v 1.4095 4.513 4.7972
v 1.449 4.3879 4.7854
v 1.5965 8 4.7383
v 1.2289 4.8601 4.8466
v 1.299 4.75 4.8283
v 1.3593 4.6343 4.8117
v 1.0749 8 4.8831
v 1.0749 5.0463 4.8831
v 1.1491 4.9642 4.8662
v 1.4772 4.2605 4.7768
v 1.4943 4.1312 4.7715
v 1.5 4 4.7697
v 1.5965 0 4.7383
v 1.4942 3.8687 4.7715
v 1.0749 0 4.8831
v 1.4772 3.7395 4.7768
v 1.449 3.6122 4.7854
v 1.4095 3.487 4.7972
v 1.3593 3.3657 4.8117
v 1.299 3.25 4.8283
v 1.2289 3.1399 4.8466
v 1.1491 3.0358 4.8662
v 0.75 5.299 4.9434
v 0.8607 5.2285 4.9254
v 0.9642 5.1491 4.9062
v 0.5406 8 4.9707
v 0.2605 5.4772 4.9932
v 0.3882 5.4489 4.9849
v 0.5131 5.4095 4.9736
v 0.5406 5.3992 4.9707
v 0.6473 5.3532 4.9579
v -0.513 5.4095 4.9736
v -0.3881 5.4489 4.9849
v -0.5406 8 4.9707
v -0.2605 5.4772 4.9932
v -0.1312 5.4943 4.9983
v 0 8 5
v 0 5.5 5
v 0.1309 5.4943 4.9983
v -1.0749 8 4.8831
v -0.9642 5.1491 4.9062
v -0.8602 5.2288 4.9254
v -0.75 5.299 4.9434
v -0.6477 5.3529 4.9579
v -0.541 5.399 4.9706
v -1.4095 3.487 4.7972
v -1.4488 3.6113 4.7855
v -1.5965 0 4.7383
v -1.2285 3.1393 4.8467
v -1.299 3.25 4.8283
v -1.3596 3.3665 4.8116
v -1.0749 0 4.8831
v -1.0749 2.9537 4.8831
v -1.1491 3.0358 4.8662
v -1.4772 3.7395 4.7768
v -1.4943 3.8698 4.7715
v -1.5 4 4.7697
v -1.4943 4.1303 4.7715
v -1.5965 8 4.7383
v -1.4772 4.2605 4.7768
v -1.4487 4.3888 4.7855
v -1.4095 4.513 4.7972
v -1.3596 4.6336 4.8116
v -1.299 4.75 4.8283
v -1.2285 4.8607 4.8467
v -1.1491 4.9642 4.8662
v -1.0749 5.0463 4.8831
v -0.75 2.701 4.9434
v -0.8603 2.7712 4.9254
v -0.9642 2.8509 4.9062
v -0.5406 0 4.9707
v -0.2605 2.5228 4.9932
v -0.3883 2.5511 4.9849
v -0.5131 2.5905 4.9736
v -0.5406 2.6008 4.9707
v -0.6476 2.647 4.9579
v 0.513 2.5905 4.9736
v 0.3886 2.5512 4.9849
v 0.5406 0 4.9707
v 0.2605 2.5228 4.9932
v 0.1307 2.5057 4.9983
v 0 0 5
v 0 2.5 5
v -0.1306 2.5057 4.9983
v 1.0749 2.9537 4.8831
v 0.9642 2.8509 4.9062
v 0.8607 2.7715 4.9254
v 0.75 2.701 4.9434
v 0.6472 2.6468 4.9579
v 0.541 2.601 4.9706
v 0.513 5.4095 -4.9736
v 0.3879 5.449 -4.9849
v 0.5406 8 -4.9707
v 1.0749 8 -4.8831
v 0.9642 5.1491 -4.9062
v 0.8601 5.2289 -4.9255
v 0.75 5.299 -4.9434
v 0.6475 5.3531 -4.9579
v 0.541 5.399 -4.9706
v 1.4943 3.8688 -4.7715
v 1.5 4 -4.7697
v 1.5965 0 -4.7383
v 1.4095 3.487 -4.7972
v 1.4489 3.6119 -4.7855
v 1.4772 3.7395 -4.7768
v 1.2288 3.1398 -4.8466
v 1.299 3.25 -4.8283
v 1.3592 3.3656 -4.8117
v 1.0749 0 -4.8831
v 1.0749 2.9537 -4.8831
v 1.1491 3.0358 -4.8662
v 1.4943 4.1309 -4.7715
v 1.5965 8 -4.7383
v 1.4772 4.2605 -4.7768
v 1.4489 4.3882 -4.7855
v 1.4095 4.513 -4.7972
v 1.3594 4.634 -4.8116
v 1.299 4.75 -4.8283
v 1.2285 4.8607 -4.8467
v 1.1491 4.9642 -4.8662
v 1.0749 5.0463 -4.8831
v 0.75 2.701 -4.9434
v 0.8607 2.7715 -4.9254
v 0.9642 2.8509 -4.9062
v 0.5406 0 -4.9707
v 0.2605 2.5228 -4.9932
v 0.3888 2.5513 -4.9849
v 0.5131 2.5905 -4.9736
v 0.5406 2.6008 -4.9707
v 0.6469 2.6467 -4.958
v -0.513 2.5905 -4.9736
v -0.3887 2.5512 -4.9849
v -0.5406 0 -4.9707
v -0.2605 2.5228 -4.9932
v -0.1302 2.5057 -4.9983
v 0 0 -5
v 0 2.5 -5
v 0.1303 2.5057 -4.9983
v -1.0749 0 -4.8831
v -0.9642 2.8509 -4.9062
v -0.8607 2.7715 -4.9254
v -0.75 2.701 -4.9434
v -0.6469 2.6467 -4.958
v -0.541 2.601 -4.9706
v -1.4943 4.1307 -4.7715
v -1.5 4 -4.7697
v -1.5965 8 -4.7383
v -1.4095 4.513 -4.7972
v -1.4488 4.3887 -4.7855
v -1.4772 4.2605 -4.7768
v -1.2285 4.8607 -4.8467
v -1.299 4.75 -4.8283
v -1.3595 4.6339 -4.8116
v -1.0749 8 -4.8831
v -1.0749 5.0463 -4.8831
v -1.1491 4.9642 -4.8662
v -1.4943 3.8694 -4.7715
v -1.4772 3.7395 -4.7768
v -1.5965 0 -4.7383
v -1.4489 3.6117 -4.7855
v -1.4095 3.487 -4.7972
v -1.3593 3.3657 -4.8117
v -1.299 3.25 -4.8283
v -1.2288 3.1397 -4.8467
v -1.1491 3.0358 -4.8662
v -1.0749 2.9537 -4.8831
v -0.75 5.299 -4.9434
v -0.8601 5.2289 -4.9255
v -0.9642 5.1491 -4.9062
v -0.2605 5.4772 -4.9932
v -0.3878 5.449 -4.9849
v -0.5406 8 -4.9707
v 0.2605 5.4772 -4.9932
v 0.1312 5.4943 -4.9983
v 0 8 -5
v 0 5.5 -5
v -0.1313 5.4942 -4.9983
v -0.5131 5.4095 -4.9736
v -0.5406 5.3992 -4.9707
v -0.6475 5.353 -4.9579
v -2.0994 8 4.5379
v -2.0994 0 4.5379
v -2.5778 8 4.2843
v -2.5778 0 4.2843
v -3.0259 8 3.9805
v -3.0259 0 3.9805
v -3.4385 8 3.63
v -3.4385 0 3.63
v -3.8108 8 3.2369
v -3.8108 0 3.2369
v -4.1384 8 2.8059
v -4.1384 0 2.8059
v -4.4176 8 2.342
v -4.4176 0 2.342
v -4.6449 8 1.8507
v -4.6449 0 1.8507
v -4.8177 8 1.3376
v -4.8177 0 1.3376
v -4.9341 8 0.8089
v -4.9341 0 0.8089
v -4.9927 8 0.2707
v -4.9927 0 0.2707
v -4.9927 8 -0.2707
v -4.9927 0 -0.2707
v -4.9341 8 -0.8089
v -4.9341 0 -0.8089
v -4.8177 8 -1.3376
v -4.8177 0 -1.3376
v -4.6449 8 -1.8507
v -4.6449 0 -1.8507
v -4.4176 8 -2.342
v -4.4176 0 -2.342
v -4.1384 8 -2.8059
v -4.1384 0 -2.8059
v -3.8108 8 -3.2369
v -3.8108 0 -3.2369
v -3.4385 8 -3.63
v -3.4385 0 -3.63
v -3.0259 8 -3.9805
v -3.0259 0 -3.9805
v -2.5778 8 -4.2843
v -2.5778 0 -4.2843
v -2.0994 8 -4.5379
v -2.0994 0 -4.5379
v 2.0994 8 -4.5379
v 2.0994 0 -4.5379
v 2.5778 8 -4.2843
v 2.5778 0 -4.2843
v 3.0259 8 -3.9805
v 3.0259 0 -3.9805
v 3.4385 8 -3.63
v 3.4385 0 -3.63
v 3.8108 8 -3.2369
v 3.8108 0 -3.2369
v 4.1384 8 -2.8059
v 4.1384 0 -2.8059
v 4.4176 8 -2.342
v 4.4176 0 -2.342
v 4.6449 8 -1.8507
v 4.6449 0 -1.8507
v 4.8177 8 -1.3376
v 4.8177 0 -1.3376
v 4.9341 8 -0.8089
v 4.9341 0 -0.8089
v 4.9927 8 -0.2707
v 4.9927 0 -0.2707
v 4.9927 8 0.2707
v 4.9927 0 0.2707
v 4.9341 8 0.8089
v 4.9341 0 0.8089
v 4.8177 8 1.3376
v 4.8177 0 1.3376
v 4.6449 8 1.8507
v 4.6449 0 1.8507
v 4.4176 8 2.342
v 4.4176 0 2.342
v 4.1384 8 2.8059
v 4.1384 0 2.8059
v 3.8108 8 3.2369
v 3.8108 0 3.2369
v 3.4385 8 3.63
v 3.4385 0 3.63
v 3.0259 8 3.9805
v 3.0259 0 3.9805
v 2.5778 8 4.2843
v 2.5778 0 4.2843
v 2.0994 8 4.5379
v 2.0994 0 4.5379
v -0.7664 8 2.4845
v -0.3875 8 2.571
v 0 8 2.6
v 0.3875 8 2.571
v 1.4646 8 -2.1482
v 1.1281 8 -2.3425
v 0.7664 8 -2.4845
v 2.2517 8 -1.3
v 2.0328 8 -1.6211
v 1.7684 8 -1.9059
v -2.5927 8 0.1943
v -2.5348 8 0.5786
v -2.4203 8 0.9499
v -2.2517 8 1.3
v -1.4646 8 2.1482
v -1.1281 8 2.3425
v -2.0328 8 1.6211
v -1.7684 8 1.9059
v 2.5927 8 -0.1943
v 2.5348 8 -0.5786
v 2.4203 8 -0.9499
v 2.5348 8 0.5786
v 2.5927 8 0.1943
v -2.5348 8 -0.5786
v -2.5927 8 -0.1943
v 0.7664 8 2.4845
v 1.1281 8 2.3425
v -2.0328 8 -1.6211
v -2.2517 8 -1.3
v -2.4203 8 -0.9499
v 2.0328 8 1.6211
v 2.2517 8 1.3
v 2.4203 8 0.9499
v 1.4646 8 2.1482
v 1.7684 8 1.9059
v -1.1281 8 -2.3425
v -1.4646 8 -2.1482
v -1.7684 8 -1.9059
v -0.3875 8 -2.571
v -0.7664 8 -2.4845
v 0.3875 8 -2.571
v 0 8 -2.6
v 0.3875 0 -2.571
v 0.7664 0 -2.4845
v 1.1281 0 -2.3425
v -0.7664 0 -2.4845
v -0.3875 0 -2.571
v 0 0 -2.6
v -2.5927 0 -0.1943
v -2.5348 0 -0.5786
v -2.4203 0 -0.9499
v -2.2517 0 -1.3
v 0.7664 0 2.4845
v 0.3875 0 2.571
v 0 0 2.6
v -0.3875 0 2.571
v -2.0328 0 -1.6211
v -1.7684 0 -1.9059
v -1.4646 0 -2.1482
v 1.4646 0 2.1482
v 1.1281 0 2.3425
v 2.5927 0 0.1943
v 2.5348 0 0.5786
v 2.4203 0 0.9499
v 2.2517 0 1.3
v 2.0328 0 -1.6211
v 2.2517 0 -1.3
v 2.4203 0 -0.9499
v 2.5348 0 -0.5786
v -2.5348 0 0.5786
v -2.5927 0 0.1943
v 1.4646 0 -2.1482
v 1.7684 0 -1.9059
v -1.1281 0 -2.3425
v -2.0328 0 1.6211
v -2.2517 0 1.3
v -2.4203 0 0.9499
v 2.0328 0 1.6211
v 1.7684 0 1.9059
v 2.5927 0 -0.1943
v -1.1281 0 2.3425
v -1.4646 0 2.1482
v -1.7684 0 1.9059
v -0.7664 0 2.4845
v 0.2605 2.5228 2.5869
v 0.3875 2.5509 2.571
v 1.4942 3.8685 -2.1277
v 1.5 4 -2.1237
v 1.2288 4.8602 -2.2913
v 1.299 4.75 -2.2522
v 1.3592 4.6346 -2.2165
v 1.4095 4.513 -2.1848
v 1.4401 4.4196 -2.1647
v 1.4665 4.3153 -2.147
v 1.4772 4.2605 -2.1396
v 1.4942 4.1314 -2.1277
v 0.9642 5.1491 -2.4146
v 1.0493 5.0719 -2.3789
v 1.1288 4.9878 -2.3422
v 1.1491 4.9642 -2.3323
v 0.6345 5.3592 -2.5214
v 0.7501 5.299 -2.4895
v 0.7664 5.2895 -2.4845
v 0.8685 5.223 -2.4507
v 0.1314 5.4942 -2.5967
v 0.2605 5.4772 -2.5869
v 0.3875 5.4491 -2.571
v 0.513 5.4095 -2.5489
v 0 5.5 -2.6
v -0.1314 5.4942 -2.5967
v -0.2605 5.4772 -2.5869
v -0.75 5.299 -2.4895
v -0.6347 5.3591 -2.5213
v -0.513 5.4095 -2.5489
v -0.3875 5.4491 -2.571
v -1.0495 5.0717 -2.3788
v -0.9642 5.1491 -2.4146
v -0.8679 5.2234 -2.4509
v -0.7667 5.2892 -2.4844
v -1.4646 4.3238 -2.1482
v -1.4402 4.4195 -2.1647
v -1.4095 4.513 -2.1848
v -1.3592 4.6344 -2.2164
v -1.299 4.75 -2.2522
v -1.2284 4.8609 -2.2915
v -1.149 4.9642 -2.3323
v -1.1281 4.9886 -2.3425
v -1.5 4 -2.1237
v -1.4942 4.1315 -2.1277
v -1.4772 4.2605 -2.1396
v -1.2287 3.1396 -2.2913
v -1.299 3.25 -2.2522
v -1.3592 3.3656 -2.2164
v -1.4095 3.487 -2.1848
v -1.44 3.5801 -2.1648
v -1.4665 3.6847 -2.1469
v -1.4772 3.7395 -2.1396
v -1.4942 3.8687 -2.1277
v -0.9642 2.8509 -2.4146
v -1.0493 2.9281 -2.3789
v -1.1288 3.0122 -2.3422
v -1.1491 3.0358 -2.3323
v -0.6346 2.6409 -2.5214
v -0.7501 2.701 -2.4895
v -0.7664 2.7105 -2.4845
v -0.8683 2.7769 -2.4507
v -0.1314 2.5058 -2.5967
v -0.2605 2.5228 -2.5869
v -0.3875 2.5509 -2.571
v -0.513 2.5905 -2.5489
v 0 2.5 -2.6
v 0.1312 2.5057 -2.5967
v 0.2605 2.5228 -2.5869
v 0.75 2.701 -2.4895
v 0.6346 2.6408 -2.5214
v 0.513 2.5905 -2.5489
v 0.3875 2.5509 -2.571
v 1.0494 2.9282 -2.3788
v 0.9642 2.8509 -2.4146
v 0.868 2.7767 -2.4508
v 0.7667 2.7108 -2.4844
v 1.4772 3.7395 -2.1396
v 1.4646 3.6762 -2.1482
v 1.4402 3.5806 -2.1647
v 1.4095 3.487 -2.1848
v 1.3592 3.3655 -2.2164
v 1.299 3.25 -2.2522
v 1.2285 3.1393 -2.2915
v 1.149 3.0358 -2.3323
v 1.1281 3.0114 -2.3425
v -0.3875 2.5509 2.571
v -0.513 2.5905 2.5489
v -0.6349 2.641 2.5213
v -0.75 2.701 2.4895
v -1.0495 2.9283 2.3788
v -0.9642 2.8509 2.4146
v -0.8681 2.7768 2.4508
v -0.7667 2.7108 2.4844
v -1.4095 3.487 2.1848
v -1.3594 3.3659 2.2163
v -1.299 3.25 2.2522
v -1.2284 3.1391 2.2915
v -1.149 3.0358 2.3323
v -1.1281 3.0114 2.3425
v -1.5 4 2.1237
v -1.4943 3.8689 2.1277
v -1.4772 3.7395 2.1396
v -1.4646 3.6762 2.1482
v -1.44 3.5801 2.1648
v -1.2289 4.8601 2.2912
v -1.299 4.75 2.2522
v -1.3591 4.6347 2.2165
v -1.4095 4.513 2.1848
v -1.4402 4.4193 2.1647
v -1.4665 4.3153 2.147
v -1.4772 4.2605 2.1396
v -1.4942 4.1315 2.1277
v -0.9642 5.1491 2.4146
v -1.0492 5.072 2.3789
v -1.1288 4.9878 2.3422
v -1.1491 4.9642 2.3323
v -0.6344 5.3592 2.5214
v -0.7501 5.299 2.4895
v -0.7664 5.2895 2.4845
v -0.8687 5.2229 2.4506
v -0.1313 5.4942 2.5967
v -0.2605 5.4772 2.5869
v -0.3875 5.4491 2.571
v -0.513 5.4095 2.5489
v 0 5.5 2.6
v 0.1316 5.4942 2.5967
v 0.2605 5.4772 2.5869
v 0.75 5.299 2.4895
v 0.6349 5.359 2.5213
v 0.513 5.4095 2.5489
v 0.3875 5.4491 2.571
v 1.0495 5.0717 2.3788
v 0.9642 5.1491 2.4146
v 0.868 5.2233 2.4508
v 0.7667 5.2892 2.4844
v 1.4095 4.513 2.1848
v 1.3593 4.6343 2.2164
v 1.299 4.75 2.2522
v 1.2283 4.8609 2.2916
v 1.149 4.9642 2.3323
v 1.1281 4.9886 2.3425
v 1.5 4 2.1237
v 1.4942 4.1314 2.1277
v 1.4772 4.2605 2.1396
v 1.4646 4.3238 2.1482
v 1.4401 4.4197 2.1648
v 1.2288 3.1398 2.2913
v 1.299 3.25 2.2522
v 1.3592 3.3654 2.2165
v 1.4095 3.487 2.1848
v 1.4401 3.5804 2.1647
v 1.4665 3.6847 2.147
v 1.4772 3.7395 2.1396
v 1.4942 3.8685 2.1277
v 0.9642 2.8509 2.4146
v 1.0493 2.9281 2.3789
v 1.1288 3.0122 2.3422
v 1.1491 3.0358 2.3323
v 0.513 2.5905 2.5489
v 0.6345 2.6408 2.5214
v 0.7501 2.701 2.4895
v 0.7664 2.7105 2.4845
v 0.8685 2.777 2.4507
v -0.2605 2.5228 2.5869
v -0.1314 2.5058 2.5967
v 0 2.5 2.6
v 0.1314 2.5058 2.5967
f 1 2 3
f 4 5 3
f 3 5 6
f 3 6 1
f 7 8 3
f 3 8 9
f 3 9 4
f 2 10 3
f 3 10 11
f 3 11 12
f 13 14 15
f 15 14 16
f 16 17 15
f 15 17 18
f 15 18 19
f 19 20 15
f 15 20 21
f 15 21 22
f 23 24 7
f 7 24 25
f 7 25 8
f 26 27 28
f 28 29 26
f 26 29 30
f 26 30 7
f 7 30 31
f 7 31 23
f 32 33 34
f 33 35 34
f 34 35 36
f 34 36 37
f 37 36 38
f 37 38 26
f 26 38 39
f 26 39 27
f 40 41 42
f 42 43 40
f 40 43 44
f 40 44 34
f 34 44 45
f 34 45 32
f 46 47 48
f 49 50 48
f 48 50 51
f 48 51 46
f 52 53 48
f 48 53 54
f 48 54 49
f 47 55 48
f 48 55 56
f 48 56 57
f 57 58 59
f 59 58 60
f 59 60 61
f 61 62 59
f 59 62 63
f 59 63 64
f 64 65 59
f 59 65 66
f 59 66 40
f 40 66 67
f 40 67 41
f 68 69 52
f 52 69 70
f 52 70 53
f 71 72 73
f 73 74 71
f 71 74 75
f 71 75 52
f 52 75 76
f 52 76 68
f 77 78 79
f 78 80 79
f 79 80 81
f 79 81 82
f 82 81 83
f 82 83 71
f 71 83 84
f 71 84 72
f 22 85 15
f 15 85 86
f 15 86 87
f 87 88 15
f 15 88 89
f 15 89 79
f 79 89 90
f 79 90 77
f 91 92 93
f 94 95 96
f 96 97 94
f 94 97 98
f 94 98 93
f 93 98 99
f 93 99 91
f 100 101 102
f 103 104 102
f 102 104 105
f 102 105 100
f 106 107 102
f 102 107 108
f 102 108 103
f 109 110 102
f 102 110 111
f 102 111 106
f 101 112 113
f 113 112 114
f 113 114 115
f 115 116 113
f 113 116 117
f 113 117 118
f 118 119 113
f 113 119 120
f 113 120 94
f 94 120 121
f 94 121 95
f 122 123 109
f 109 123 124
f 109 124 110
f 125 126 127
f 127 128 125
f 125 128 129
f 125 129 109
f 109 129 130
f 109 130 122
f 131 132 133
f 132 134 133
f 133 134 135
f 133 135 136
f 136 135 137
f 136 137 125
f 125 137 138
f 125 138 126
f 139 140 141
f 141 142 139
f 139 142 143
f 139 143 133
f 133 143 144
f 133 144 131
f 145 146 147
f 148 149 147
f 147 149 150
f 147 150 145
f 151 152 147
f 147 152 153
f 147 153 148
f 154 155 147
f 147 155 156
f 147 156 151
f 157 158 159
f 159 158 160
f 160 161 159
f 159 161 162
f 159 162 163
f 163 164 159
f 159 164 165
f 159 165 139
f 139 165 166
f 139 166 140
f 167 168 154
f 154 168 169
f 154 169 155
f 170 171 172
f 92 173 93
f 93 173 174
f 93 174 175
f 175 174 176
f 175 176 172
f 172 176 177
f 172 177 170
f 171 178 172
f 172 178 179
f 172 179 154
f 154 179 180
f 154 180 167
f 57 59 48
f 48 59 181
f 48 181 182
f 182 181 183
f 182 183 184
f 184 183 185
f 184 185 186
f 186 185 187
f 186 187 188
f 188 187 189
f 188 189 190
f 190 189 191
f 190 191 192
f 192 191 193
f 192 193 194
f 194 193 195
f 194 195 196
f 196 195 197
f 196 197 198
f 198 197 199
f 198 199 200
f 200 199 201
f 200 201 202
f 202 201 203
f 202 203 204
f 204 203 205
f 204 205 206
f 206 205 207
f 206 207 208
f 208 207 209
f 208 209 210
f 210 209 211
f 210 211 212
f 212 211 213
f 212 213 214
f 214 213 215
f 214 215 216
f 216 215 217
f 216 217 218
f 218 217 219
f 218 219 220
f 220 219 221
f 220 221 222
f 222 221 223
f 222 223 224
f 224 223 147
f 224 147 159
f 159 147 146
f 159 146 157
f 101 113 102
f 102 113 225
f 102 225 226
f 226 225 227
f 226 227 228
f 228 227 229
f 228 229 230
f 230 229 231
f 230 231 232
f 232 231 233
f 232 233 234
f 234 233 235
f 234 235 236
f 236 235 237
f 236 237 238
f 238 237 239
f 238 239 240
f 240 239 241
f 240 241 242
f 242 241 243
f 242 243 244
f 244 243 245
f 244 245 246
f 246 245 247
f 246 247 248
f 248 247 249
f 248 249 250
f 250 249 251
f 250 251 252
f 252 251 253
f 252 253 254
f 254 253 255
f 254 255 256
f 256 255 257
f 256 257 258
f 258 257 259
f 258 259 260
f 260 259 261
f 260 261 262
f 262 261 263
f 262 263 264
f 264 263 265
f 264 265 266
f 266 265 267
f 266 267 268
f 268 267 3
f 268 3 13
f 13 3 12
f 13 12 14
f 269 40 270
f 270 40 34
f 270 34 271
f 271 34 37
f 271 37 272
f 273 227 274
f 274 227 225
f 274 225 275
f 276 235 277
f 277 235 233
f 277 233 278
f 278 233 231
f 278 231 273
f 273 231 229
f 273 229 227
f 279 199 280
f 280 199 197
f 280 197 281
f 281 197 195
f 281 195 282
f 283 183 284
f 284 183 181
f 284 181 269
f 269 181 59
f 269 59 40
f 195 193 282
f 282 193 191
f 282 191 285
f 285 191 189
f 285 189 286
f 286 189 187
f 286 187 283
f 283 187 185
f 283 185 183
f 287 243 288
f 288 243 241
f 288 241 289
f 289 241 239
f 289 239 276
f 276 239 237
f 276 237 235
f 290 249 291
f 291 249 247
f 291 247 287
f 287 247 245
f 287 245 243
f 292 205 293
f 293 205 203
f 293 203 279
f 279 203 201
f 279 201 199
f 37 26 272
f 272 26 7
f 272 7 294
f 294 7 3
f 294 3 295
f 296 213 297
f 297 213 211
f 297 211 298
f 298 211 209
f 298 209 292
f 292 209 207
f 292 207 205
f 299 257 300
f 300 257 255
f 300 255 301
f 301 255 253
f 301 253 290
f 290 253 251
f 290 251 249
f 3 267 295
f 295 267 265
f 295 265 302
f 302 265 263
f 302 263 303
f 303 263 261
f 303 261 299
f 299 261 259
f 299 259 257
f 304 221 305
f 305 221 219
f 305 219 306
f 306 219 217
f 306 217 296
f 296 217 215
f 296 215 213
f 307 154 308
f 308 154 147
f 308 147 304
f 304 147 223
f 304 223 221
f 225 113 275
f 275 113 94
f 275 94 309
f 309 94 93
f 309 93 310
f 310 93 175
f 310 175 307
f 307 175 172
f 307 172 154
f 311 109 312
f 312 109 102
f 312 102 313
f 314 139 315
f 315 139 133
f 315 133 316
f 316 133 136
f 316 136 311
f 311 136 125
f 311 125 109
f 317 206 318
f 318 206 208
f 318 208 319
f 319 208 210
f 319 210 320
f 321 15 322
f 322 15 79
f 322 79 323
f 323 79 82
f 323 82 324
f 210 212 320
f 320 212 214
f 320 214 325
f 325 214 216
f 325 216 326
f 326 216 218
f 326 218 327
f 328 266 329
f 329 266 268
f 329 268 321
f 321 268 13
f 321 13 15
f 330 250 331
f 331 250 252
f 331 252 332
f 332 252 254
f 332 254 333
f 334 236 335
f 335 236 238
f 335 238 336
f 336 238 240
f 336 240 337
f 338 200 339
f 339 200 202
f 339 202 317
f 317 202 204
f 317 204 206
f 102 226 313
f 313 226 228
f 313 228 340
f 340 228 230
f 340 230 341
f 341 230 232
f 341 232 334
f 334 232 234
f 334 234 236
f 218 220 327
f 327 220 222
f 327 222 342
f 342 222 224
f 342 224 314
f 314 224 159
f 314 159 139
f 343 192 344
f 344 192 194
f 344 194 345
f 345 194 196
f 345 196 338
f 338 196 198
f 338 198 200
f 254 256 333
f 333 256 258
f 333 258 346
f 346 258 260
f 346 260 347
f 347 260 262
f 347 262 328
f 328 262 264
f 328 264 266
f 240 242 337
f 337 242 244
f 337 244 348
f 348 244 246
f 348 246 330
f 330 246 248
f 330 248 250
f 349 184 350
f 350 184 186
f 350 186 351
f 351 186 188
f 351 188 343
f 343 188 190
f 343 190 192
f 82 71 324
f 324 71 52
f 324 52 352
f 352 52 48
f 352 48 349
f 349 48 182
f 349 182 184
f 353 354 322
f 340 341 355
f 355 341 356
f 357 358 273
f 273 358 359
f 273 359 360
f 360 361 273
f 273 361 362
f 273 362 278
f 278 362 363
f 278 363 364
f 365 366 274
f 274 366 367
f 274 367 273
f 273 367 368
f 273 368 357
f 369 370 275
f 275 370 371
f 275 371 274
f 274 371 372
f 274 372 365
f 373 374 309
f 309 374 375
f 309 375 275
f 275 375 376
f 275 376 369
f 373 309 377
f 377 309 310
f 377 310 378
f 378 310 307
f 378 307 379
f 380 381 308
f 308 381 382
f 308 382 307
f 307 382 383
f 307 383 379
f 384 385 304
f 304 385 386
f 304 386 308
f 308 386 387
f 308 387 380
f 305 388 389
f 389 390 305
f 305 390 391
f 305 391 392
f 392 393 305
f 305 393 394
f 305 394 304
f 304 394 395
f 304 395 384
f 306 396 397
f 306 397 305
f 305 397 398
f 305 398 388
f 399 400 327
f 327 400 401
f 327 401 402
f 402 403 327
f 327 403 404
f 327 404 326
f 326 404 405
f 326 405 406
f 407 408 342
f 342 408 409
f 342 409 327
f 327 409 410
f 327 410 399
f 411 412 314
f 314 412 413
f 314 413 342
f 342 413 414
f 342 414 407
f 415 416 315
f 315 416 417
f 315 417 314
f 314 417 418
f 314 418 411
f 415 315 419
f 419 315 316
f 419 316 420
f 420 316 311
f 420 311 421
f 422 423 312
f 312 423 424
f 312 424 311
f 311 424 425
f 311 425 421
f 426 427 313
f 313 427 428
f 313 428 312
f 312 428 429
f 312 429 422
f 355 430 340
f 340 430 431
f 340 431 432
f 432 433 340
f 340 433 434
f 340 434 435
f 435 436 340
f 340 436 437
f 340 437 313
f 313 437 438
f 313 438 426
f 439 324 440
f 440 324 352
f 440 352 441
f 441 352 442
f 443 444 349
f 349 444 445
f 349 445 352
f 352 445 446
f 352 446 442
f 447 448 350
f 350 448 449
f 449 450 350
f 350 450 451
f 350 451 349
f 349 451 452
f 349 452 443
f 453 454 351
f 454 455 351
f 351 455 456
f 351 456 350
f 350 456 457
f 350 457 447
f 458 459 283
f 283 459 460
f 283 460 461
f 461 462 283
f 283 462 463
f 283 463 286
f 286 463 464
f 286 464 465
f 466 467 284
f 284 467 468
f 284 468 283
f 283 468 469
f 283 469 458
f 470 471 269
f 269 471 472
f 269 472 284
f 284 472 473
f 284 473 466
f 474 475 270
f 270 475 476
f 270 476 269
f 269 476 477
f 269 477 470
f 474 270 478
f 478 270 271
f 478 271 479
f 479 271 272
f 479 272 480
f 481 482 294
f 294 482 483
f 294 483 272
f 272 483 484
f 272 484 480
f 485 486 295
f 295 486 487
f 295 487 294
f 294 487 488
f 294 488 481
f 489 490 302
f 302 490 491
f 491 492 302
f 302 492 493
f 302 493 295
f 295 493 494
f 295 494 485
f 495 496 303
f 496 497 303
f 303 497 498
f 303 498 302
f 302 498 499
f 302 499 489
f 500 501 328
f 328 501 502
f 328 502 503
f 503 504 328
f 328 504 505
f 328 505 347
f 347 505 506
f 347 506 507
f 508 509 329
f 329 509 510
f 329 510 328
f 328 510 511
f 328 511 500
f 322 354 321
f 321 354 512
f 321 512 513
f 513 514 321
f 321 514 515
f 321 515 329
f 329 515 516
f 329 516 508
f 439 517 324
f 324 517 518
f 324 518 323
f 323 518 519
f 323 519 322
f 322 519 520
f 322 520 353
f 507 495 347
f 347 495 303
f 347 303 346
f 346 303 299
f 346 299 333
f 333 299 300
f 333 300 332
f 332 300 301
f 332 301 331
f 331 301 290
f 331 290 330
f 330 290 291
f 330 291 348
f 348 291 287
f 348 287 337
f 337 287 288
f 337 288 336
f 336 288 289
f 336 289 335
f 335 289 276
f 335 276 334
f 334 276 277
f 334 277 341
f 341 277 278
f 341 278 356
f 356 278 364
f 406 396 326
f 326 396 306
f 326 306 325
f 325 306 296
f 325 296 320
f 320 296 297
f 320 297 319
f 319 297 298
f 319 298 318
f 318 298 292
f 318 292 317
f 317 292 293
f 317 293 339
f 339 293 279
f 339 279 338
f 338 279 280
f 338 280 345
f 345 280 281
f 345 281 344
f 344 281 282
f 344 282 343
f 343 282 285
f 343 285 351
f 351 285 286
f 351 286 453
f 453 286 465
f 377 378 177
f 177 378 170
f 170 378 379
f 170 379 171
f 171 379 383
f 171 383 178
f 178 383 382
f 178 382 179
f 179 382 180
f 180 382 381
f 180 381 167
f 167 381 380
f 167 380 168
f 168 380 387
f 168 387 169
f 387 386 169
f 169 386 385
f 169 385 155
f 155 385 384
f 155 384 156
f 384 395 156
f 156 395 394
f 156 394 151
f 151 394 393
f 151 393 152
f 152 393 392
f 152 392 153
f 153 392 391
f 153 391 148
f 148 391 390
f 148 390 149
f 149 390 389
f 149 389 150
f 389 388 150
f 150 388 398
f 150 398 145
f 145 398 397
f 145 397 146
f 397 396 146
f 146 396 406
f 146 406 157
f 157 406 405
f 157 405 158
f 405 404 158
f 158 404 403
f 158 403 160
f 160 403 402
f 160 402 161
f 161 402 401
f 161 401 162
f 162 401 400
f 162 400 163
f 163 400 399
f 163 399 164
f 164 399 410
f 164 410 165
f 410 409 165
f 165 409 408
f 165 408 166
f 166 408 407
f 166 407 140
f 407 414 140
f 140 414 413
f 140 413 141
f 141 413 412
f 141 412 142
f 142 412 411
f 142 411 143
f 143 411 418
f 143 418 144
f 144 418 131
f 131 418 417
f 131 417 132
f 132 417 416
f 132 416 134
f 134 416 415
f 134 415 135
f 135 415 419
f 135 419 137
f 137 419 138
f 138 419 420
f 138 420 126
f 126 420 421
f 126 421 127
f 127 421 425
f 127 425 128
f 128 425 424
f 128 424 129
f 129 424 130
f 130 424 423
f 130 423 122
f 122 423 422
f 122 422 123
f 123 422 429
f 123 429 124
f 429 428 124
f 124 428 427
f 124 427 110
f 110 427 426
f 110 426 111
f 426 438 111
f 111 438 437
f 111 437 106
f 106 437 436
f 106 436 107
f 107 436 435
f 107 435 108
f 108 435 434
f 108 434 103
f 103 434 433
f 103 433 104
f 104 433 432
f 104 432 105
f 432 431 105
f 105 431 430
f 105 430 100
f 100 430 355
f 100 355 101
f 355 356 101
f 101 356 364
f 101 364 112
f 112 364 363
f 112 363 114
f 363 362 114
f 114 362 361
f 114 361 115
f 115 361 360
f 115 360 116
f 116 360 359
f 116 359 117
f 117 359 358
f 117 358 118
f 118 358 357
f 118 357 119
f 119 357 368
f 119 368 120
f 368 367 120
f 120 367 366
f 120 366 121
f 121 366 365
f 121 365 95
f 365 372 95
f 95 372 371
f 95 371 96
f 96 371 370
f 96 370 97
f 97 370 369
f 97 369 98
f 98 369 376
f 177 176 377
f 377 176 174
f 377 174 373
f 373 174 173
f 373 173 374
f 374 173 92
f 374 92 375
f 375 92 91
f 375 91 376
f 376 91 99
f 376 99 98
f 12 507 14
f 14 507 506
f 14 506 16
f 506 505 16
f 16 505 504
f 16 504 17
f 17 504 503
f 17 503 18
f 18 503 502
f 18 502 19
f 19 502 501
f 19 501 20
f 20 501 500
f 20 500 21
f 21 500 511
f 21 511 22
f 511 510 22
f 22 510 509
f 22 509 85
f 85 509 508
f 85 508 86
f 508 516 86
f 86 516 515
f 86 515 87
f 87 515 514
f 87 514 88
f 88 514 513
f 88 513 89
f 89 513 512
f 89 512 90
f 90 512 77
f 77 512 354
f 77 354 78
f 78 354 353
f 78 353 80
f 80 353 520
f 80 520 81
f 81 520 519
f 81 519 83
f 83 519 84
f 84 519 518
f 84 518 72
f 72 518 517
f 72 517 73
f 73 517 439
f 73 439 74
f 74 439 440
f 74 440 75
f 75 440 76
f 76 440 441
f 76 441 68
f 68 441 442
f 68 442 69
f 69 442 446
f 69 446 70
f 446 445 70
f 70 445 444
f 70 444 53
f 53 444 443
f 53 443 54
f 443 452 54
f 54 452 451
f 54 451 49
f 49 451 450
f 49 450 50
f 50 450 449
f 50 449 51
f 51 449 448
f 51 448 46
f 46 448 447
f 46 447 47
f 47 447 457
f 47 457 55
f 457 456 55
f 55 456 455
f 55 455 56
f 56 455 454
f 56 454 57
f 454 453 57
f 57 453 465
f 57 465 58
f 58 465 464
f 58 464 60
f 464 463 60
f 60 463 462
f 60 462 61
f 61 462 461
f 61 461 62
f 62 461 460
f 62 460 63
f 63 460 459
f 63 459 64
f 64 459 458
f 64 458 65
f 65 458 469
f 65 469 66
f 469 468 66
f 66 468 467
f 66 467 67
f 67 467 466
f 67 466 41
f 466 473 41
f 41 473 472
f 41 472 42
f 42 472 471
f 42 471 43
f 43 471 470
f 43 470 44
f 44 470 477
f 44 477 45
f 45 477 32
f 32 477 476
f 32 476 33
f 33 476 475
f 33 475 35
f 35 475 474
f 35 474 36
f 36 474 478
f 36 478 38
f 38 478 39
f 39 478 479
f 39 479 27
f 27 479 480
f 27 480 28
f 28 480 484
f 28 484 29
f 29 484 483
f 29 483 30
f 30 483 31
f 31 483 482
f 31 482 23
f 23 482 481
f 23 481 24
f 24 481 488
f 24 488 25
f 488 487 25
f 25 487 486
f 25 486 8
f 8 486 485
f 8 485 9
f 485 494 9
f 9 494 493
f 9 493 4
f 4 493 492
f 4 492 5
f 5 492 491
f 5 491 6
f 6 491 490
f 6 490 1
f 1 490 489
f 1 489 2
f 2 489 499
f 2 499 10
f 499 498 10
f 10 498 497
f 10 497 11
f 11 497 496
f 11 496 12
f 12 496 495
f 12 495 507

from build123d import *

# Parameters (mm, degrees)
SKETCH1_R           = 5
BOSS_EXTRUDE1_DEPTH = 8
SKETCH2_R           = 2.6
CUT_EXTRUDE1_DEPTH  = 20
SKETCH3_R           = 1.5
CUT_EXTRUDE2_DEPTH  = 20


with BuildPart() as part:
    # Sketch1 → Boss-Extrude1 (new body)
    with BuildSketch(Plane(origin=(0, 0, 0), x_dir=(1, 0, 0), z_dir=(0, 1, 0))):
        with Locations(Location((0, 0, 0), (0, 0, 270))):
            Circle(SKETCH1_R)
    extrude(amount=BOSS_EXTRUDE1_DEPTH)

    # Sketch2 → Cut-Extrude1 (cut, symmetric)
    with BuildSketch(Plane(origin=(0, 0, 0), x_dir=(1, 0, 0), z_dir=(0, 1, 0))):
        with Locations(Location((0, 0, 0), (0, 0, 270))):
            Circle(SKETCH2_R)
    extrude(amount=CUT_EXTRUDE1_DEPTH, both=True, mode=Mode.SUBTRACT)

    # Sketch3 → Cut-Extrude2 (cut, symmetric)
    with BuildSketch(Plane.XY):
        with Locations((0, 4)):
            Circle(SKETCH3_R)
    extrude(amount=CUT_EXTRUDE2_DEPTH, both=True, mode=Mode.SUBTRACT)


solid = part.part
